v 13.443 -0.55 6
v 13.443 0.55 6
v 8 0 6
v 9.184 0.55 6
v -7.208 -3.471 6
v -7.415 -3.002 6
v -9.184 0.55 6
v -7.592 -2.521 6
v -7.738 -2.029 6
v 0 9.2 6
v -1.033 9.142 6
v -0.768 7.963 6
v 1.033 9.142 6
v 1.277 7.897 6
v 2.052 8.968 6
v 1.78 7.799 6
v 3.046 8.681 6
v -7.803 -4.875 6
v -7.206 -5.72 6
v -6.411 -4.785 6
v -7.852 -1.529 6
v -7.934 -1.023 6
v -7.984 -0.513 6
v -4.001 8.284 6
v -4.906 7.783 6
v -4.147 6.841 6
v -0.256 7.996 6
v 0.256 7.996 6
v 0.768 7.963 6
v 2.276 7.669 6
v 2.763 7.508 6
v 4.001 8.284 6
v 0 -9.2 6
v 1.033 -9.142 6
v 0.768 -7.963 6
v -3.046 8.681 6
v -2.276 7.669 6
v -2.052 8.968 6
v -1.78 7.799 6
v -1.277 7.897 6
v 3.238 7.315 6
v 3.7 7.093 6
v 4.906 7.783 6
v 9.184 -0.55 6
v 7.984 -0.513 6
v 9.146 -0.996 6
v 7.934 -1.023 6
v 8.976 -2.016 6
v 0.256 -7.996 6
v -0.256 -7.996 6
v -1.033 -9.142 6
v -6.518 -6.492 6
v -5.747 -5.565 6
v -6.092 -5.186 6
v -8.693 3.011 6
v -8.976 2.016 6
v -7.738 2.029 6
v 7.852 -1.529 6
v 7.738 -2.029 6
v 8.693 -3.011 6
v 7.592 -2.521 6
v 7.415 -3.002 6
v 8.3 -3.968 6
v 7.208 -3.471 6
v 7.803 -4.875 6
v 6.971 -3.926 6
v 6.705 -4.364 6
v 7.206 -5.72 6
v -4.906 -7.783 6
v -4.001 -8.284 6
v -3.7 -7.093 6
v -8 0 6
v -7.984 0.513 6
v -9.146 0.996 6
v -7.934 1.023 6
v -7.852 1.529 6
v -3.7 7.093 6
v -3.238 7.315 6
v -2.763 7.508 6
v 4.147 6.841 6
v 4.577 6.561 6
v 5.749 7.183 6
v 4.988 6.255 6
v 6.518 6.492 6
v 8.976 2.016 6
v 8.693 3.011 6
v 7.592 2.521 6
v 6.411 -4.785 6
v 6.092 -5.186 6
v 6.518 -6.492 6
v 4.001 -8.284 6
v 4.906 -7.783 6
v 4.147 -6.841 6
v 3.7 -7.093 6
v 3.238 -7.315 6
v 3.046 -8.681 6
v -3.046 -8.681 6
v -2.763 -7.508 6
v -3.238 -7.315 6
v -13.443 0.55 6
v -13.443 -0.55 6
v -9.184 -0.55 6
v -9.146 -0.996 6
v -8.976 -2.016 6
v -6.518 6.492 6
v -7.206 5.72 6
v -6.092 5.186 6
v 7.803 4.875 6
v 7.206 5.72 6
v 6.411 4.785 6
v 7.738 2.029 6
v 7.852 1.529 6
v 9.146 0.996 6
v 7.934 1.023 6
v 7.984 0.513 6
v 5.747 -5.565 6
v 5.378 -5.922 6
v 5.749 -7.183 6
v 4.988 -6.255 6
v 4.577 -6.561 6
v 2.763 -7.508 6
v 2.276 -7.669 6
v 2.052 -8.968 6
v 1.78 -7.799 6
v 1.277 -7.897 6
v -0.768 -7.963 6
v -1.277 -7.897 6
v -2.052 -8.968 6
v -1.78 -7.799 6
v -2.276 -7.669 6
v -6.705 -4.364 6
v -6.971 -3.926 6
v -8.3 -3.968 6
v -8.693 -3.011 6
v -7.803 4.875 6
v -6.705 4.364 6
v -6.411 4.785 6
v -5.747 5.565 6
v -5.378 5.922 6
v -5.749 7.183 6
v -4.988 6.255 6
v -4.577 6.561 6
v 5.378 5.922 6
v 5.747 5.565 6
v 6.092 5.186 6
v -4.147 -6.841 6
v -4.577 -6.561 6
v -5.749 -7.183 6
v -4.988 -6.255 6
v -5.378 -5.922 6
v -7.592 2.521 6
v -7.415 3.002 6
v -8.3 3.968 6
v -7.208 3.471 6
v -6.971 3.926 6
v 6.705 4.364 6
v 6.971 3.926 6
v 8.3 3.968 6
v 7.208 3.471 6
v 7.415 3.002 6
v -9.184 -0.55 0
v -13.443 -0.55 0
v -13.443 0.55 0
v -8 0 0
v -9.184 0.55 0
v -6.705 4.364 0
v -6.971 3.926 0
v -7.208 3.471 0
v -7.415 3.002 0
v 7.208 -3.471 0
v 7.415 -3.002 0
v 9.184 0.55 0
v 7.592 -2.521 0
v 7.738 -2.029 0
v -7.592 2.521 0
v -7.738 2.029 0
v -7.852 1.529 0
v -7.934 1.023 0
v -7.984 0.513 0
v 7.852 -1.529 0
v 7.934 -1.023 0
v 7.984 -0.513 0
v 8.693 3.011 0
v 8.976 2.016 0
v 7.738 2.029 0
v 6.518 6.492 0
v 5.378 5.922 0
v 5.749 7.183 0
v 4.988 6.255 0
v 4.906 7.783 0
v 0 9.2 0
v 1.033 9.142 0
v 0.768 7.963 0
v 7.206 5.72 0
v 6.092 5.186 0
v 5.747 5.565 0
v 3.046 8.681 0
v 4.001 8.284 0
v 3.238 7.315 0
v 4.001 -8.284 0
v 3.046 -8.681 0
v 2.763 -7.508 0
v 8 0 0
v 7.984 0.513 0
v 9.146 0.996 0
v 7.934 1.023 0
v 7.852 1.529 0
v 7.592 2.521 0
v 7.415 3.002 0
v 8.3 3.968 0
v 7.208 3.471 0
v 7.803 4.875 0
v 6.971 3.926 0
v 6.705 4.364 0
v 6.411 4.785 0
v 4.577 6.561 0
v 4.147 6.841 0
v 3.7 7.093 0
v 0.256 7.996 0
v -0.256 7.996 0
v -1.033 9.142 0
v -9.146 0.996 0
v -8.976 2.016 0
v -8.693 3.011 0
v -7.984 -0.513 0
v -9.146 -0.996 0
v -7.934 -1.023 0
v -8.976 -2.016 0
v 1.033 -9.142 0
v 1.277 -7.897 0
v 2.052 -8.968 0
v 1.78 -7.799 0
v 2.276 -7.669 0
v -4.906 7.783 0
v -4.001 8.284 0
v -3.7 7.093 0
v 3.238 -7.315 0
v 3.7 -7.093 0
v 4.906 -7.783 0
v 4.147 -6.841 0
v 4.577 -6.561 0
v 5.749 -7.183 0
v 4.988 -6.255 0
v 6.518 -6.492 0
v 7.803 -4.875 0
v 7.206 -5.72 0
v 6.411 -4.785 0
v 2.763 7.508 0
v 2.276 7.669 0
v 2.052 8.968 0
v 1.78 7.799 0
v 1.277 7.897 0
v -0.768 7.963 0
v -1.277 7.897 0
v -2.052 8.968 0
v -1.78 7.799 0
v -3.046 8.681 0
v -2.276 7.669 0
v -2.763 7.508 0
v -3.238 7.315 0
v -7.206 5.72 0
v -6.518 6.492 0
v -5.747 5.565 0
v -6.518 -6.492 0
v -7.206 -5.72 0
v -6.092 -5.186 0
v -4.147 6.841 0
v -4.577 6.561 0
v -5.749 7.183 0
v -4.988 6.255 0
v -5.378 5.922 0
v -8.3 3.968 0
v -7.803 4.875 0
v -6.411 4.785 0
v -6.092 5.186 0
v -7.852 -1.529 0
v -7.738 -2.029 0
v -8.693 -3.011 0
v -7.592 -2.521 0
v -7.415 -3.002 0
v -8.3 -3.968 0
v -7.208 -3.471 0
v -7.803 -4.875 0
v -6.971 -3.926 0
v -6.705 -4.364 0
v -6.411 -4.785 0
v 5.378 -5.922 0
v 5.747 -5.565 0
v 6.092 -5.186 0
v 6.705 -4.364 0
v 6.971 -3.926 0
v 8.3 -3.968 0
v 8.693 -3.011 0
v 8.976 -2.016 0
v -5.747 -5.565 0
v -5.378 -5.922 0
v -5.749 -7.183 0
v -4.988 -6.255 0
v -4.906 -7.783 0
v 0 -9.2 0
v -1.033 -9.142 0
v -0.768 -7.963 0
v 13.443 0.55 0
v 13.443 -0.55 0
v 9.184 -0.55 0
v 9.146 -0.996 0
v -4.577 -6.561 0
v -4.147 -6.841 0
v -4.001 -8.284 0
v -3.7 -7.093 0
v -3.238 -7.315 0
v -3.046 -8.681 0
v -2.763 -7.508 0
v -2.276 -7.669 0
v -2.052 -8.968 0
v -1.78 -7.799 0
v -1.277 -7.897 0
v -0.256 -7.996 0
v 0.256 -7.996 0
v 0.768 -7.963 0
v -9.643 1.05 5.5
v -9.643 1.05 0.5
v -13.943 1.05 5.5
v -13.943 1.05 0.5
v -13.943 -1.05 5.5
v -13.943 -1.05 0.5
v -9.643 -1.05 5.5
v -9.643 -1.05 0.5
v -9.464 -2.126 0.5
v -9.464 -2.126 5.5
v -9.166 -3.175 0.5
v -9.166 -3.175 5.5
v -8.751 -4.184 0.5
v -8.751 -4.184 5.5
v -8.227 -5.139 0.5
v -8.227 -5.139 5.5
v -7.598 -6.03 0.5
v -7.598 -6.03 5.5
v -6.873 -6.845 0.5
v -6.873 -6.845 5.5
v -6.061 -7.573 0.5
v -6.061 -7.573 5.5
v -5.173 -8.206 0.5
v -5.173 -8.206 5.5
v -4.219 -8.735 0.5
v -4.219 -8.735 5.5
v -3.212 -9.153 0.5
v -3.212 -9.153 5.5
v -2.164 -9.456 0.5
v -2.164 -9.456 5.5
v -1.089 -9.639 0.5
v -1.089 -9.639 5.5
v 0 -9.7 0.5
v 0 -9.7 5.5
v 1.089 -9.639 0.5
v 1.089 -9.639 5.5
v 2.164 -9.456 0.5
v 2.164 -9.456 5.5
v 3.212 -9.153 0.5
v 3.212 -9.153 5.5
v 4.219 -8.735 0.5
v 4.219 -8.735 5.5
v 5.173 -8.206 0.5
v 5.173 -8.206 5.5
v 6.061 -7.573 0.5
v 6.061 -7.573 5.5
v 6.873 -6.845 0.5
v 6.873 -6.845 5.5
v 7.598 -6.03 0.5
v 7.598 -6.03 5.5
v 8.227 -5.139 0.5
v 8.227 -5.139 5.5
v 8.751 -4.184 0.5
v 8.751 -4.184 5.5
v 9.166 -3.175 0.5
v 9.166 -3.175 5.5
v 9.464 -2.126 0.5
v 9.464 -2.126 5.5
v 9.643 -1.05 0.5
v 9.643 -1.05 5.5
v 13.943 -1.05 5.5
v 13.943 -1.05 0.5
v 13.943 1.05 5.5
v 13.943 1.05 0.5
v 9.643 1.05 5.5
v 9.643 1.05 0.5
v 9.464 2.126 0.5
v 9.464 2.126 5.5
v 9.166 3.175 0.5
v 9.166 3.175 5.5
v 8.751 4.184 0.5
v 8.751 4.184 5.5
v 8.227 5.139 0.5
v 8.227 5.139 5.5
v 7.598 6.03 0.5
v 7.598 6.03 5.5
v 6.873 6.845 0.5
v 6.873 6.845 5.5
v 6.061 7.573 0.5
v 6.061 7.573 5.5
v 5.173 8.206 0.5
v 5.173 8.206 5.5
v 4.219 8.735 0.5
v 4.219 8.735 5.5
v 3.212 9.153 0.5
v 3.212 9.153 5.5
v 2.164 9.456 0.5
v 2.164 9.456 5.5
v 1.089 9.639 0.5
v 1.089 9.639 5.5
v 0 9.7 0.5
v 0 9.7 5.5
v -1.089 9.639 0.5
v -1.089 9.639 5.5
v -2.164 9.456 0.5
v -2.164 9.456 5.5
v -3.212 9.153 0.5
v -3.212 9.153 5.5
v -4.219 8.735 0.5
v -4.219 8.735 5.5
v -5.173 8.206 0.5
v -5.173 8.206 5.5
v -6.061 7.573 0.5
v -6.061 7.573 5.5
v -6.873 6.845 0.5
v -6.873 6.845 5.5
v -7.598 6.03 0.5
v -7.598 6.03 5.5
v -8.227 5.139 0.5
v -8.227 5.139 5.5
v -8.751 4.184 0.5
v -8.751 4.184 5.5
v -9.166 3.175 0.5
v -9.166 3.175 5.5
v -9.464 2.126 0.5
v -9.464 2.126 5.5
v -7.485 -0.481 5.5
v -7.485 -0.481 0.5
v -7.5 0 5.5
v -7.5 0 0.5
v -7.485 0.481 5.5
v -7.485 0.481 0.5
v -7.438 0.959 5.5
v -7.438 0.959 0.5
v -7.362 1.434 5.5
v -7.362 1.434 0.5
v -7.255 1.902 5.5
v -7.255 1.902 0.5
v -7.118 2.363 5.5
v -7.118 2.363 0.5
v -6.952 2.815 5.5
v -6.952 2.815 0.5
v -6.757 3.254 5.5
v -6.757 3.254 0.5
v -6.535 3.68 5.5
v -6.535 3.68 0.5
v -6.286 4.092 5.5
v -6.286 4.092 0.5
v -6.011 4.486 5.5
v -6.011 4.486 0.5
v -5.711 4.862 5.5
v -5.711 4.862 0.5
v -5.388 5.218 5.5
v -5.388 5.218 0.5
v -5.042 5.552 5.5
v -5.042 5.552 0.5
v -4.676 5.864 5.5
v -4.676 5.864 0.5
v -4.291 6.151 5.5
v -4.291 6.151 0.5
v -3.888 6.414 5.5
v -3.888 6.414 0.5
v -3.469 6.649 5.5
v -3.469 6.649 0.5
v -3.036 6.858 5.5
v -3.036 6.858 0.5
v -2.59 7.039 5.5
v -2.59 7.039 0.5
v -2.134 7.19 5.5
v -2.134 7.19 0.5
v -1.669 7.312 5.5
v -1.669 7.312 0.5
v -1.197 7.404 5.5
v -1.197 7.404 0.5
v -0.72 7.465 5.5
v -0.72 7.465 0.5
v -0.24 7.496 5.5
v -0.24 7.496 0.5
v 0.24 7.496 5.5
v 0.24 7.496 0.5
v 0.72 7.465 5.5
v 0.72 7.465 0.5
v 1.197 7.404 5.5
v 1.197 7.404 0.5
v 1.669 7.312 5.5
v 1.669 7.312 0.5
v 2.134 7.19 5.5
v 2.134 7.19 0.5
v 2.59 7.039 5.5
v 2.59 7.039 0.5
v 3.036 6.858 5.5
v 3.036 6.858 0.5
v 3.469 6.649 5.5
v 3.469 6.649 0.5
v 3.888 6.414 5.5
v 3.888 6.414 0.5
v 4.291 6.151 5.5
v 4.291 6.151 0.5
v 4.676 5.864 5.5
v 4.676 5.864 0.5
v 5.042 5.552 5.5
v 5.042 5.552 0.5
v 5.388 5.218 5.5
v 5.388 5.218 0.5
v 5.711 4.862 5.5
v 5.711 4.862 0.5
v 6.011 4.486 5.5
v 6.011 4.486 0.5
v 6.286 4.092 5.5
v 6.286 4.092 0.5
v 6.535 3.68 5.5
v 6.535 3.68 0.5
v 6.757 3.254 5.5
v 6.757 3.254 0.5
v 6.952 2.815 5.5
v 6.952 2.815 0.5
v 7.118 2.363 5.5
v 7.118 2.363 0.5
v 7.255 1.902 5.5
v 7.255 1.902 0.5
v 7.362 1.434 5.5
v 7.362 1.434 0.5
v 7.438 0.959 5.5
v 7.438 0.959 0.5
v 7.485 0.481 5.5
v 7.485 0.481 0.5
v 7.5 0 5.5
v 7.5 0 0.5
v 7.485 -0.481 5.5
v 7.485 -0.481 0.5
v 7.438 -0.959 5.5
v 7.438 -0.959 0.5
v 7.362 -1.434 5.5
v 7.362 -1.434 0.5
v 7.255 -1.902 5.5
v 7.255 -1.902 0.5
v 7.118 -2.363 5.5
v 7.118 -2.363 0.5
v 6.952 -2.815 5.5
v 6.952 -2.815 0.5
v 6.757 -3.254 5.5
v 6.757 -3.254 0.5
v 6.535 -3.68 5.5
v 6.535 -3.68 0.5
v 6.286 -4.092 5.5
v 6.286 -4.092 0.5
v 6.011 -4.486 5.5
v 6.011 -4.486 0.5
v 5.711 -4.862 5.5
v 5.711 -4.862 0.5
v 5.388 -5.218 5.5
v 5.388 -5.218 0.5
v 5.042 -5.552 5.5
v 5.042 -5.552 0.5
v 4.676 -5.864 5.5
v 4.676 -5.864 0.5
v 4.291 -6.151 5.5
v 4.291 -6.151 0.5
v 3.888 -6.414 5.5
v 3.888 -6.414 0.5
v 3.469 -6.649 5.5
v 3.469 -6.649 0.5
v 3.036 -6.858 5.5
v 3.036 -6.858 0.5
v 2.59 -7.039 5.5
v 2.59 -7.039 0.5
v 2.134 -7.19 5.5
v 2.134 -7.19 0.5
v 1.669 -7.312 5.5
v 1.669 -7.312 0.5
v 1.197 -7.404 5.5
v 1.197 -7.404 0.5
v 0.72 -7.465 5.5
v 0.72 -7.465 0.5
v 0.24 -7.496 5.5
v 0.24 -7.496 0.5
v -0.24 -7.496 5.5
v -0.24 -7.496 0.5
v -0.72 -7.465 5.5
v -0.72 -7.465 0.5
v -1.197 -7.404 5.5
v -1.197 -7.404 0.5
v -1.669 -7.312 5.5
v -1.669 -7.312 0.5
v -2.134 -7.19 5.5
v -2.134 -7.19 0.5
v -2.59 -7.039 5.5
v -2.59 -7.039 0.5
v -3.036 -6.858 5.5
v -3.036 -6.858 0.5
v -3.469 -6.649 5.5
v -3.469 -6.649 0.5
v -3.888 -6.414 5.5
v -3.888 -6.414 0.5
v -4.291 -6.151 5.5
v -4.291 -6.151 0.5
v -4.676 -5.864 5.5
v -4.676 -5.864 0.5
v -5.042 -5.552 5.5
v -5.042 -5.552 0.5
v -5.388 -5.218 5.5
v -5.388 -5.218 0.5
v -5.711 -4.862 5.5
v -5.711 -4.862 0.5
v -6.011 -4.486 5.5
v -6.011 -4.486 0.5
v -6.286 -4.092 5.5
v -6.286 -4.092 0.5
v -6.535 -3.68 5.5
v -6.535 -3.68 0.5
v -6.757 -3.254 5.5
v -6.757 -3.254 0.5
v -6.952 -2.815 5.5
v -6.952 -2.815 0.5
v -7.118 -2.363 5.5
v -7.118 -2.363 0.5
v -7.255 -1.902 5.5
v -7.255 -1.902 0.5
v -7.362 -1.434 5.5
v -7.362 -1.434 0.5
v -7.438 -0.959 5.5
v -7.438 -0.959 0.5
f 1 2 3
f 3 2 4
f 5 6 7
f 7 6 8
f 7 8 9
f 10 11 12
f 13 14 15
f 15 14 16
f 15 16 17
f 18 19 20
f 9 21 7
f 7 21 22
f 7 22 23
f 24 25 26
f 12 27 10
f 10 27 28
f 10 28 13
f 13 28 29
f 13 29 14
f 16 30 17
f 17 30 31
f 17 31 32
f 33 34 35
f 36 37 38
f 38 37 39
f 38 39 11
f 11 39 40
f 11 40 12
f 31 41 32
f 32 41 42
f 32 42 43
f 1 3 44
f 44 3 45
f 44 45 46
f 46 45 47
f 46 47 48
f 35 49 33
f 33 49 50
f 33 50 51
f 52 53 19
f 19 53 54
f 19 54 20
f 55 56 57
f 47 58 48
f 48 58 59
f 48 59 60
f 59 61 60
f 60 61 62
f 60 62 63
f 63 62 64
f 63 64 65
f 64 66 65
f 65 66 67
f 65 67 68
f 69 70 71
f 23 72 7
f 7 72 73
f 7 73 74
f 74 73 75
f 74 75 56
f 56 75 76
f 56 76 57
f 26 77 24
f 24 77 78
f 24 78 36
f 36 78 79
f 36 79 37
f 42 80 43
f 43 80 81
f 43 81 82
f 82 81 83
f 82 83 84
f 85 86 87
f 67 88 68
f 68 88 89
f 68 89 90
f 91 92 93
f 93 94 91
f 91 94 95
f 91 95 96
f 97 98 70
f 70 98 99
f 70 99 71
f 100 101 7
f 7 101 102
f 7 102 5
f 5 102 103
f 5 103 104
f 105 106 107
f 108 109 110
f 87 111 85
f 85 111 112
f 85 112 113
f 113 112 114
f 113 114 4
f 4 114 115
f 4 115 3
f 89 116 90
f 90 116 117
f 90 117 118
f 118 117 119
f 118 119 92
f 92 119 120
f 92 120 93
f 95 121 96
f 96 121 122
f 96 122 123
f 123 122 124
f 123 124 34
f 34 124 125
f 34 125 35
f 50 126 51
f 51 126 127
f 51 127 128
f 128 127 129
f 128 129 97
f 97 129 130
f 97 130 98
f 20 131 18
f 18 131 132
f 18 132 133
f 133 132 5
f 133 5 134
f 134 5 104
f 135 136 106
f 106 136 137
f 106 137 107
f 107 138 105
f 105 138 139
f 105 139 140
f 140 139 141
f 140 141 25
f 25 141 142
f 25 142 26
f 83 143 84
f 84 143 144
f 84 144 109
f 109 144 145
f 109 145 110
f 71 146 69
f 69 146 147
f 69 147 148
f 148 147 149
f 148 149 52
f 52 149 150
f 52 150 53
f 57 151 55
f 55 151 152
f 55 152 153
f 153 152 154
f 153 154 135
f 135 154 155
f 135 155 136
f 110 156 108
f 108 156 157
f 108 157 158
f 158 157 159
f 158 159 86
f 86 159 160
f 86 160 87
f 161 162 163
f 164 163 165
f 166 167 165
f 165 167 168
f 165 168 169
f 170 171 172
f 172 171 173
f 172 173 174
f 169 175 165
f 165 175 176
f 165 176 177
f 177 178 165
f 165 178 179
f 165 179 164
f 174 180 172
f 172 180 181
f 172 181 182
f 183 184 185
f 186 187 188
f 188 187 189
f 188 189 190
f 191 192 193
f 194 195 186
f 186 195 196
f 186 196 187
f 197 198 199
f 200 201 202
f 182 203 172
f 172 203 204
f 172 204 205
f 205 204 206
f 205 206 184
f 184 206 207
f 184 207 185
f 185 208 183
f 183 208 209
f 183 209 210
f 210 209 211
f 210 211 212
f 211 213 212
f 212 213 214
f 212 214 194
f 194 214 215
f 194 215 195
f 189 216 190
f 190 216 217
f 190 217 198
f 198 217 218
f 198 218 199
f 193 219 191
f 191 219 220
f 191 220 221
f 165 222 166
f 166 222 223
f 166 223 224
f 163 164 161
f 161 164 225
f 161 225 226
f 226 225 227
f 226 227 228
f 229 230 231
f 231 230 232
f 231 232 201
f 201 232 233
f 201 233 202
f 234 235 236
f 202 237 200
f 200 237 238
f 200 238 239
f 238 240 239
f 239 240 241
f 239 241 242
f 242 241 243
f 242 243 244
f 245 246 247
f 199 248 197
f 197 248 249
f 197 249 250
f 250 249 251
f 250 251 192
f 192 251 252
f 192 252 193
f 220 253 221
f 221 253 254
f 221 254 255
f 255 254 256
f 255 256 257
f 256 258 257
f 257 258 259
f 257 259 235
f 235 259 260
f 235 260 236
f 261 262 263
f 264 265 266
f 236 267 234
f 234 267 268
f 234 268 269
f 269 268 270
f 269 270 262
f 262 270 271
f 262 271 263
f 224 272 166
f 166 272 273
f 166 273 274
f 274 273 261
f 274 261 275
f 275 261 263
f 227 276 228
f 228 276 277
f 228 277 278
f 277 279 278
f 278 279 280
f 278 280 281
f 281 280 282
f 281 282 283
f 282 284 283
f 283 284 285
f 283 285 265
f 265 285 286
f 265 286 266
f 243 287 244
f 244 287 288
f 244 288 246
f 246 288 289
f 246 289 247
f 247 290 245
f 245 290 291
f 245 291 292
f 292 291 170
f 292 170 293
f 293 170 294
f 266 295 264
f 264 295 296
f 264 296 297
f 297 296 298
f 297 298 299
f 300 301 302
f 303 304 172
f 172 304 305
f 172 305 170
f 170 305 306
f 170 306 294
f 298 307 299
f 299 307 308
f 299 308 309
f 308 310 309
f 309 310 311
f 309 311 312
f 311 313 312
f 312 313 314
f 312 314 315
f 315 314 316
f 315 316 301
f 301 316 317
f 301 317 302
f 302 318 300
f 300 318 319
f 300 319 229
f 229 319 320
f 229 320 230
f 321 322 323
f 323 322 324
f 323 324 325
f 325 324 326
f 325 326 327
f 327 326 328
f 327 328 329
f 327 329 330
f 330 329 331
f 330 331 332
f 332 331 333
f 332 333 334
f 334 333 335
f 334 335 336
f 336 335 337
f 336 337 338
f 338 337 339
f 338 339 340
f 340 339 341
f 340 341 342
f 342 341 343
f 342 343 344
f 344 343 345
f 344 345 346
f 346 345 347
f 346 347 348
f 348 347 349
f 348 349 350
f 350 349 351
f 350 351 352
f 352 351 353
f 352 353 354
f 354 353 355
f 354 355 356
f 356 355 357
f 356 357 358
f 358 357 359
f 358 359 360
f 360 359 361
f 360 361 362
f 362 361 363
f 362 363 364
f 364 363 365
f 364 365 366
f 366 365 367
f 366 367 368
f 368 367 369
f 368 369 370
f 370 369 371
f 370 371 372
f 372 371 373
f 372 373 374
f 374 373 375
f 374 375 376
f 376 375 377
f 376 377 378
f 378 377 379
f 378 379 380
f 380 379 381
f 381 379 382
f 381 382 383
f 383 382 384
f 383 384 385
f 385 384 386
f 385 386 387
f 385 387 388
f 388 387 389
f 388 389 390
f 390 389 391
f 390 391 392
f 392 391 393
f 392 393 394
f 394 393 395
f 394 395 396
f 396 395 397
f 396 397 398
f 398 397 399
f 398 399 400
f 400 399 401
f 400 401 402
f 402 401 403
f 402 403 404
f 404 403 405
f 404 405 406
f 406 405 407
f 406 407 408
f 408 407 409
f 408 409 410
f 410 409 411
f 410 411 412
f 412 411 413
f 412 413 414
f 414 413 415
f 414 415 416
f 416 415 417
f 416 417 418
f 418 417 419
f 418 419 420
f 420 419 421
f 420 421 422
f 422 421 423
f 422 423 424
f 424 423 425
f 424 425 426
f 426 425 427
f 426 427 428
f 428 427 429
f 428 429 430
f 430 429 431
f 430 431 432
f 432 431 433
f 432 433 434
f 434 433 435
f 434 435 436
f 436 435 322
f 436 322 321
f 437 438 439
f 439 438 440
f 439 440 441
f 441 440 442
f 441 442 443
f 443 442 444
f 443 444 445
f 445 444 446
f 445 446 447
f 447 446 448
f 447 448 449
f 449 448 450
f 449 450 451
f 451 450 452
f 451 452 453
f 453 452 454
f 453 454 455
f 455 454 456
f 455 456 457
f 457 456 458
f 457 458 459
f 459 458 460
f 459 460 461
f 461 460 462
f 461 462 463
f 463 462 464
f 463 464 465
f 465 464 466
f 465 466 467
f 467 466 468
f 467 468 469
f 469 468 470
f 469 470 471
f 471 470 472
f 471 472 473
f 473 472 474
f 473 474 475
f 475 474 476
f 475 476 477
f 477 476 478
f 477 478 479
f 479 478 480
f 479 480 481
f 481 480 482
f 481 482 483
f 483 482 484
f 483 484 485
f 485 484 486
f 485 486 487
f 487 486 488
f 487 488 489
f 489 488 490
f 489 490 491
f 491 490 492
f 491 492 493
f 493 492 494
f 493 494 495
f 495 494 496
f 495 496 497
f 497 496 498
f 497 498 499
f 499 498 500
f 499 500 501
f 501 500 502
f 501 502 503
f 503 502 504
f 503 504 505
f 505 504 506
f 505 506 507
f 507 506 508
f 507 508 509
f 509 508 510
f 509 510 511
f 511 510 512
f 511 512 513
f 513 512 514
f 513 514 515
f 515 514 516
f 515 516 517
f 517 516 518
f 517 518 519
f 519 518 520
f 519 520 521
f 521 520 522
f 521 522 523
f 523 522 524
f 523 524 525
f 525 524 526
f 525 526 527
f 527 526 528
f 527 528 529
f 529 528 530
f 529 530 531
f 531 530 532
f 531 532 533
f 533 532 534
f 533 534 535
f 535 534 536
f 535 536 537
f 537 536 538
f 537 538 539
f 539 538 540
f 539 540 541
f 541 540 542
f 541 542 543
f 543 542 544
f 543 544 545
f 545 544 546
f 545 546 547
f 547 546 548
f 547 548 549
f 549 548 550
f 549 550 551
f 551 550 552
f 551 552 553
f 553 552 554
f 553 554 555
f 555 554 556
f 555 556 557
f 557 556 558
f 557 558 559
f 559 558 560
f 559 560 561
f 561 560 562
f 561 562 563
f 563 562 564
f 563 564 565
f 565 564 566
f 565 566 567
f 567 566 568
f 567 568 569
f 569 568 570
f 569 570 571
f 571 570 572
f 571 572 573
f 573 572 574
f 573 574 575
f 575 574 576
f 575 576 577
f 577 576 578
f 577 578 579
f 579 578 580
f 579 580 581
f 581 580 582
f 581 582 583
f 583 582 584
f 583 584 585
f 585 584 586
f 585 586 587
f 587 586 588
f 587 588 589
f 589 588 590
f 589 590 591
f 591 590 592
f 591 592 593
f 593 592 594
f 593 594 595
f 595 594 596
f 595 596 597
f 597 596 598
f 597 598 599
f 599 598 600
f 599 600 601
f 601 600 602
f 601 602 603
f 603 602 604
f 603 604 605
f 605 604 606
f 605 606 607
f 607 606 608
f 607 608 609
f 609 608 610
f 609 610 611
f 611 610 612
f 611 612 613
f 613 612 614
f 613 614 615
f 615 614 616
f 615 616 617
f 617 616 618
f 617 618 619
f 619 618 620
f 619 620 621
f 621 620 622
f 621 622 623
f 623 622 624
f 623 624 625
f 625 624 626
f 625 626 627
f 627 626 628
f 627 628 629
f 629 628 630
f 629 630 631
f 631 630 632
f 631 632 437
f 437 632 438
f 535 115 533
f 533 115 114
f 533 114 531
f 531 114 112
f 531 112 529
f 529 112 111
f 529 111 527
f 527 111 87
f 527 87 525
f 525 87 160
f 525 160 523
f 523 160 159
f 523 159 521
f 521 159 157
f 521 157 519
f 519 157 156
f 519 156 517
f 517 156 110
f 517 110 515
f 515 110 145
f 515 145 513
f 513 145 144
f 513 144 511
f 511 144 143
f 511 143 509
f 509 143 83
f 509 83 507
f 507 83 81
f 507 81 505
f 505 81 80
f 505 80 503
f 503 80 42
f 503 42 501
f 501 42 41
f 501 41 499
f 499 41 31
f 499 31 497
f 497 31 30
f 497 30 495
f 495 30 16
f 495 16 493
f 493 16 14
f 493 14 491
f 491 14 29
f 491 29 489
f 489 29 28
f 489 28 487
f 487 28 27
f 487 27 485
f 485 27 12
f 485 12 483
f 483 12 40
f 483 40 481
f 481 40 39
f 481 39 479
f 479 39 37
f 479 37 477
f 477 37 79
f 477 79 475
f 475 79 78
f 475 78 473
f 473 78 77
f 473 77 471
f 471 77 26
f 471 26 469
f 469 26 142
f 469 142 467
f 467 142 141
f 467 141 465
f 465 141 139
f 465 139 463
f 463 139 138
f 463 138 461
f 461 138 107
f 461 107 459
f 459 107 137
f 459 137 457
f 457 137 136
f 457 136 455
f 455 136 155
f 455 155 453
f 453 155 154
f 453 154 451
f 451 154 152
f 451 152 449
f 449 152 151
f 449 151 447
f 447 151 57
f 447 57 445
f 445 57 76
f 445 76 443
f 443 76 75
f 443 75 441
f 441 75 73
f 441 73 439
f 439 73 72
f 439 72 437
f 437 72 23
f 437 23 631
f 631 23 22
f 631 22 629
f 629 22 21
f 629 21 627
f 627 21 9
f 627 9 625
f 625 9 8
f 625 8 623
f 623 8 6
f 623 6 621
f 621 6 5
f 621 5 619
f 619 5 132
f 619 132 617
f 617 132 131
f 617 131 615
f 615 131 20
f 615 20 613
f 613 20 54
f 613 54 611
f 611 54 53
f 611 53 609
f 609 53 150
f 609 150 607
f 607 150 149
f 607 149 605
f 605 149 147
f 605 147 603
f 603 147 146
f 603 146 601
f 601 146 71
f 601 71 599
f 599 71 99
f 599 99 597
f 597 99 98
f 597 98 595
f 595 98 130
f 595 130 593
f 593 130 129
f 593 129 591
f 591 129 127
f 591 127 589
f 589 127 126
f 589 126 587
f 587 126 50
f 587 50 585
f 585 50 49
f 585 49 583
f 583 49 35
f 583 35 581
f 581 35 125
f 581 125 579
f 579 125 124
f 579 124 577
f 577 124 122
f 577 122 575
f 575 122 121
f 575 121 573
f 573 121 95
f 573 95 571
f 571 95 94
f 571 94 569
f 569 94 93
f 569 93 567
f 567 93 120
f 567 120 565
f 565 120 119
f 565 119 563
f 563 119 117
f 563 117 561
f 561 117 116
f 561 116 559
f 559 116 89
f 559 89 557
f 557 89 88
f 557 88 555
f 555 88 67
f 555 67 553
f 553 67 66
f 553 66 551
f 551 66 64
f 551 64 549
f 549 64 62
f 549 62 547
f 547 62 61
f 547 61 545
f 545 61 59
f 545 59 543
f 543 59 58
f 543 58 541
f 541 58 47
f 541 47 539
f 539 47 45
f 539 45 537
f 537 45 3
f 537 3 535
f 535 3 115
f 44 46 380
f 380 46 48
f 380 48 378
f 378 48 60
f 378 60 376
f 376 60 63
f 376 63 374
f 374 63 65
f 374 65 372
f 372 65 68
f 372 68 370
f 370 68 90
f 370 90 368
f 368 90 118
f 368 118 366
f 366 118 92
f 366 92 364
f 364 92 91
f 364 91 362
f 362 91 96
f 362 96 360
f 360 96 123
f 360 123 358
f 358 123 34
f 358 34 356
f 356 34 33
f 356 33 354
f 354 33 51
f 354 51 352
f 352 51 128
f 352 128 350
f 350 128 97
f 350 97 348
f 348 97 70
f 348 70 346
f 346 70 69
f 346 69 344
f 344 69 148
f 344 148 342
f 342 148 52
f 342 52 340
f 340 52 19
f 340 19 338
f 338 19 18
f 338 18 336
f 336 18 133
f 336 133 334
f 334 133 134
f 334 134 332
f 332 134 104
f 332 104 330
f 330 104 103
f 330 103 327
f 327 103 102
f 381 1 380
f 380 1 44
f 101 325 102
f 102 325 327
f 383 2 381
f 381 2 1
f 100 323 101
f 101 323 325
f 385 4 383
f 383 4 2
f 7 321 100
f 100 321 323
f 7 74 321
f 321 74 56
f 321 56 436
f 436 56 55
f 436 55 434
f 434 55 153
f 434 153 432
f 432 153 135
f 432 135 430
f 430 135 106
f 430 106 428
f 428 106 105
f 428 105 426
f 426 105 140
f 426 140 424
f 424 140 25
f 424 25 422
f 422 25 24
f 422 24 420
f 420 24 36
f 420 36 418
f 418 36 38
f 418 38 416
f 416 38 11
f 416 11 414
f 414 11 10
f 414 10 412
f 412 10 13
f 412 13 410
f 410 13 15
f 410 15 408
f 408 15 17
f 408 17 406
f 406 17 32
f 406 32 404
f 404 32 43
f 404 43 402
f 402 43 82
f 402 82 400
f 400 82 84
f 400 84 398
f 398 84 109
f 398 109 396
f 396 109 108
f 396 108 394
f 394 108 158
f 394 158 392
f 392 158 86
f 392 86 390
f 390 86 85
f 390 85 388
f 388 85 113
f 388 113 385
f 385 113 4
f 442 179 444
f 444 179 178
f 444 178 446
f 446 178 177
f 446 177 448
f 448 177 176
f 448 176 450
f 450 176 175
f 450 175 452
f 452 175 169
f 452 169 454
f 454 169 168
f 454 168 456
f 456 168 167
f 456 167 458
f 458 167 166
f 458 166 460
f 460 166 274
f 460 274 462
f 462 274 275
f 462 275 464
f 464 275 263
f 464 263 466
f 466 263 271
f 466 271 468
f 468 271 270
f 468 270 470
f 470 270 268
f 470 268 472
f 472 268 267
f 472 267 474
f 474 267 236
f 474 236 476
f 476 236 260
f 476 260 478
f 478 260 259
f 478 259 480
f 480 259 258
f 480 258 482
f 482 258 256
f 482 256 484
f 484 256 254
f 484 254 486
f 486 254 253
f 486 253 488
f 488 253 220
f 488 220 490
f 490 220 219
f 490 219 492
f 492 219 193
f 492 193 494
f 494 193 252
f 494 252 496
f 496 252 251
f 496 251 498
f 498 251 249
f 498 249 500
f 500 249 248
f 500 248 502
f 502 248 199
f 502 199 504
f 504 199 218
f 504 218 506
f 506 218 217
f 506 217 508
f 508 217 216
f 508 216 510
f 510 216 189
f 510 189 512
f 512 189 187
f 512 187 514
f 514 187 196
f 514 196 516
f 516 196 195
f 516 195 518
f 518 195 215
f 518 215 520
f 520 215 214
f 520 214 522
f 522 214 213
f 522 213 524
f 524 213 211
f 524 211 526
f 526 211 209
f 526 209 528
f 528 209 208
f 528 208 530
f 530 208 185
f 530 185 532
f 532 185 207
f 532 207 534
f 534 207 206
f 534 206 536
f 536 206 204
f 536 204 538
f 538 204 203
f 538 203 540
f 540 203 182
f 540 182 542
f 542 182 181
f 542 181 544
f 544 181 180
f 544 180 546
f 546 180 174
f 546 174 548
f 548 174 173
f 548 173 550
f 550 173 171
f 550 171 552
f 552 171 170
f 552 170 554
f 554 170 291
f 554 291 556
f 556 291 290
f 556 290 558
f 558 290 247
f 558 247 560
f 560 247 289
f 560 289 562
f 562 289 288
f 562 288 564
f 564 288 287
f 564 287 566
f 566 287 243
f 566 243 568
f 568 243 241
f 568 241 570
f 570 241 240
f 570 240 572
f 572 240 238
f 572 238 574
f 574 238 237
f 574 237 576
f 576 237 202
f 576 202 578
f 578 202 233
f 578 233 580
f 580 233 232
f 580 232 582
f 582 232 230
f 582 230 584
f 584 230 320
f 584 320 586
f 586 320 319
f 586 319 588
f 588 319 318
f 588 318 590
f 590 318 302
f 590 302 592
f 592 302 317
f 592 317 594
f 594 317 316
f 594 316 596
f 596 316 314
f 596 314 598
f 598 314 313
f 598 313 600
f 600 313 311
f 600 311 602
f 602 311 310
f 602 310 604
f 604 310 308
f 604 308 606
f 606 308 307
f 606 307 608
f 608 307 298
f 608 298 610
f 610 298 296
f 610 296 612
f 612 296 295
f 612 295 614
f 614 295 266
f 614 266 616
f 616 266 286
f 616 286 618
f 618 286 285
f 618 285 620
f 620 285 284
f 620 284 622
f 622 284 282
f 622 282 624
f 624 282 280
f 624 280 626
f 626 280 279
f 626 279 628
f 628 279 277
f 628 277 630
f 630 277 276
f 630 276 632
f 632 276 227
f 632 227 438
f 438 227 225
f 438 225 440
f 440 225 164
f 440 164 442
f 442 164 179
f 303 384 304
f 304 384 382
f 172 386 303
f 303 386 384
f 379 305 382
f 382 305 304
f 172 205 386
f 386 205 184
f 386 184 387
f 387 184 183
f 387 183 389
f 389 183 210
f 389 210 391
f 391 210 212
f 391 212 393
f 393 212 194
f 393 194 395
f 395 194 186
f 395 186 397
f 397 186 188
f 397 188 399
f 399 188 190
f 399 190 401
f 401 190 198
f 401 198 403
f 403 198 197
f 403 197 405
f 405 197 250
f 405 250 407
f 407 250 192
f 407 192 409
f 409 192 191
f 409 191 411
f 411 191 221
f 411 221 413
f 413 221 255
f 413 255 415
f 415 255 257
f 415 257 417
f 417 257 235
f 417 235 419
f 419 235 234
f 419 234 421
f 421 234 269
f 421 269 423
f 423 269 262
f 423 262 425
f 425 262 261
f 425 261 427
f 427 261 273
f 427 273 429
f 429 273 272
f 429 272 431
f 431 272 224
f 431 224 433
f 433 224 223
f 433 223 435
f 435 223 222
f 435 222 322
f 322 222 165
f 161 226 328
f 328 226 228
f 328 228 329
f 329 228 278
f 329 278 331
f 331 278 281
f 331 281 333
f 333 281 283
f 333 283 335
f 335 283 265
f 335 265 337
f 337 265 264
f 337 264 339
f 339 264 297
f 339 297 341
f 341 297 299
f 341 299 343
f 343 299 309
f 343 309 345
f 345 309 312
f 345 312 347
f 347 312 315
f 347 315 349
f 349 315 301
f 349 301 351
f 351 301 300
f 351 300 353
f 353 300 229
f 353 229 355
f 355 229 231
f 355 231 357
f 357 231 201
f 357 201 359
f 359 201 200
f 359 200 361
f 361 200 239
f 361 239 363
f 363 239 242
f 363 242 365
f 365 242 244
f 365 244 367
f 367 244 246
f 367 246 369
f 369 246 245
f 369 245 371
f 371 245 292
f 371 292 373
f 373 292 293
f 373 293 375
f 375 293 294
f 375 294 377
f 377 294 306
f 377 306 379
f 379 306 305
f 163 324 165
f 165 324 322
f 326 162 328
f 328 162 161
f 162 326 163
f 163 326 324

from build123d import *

# Parameters (mm, degrees)
SKETCH1_R           = 7.5
BOSS_EXTRUDE1_DEPTH = 6
CHAMFER1_SIZE       = 0.5


with BuildPart() as part:
    # Sketch1 → Boss-Extrude1 (new body)
    with BuildSketch(Plane.XY):
        with BuildLine():
            Line((9.643002644, -1.05), (13.943002644, -1.05))
            Line((13.943002644, -1.05), (13.943002644, 1.05))
            Line((13.943002644, 1.05), (9.643002644, 1.05))
            ThreePointArc((9.643002644, 1.05), (0, 9.7), (-9.643002644, 1.05))
            Line((-9.643002644, 1.05), (-13.943002644, 1.05))
            Line((-13.943002644, 1.05), (-13.943002644, -1.05))
            Line((-13.943002644, -1.05), (-9.643002644, -1.05))
            ThreePointArc((-9.643002644, -1.05), (0, -9.7), (9.643002644, -1.05))
        make_face()
        Circle(SKETCH1_R, mode=Mode.SUBTRACT)
    extrude(amount=BOSS_EXTRUDE1_DEPTH)

    # Chamfer1
    chamfer1_edges = [part.edges().sort_by_distance(p)[0] for p in [
        (0, -9.7, 0),
        (-11.793002644, -1.05, 0),
        (-13.943002644, 0, 0),
        (-11.793002644, 1.05, 0),
        (-11.793002644, -1.05, 6),
        (0, -9.7, 6),
        (11.793002644, -1.05, 6),
        (-7.5, 0, 0),
        (-7.5, 0, 6),
        (13.943002644, 0, 6),
        (11.793002644, 1.05, 6),
        (0, 9.7, 6),
        (-11.793002644, 1.05, 6),
        (0, 9.7, 0),
        (-13.943002644, 0, 6),
        (11.793002644, 1.05, 0),
        (13.943002644, 0, 0),
        (11.793002644, -1.05, 0),
    ]]
    chamfer(chamfer1_edges, length=CHAMFER1_SIZE)


solid = part.part
